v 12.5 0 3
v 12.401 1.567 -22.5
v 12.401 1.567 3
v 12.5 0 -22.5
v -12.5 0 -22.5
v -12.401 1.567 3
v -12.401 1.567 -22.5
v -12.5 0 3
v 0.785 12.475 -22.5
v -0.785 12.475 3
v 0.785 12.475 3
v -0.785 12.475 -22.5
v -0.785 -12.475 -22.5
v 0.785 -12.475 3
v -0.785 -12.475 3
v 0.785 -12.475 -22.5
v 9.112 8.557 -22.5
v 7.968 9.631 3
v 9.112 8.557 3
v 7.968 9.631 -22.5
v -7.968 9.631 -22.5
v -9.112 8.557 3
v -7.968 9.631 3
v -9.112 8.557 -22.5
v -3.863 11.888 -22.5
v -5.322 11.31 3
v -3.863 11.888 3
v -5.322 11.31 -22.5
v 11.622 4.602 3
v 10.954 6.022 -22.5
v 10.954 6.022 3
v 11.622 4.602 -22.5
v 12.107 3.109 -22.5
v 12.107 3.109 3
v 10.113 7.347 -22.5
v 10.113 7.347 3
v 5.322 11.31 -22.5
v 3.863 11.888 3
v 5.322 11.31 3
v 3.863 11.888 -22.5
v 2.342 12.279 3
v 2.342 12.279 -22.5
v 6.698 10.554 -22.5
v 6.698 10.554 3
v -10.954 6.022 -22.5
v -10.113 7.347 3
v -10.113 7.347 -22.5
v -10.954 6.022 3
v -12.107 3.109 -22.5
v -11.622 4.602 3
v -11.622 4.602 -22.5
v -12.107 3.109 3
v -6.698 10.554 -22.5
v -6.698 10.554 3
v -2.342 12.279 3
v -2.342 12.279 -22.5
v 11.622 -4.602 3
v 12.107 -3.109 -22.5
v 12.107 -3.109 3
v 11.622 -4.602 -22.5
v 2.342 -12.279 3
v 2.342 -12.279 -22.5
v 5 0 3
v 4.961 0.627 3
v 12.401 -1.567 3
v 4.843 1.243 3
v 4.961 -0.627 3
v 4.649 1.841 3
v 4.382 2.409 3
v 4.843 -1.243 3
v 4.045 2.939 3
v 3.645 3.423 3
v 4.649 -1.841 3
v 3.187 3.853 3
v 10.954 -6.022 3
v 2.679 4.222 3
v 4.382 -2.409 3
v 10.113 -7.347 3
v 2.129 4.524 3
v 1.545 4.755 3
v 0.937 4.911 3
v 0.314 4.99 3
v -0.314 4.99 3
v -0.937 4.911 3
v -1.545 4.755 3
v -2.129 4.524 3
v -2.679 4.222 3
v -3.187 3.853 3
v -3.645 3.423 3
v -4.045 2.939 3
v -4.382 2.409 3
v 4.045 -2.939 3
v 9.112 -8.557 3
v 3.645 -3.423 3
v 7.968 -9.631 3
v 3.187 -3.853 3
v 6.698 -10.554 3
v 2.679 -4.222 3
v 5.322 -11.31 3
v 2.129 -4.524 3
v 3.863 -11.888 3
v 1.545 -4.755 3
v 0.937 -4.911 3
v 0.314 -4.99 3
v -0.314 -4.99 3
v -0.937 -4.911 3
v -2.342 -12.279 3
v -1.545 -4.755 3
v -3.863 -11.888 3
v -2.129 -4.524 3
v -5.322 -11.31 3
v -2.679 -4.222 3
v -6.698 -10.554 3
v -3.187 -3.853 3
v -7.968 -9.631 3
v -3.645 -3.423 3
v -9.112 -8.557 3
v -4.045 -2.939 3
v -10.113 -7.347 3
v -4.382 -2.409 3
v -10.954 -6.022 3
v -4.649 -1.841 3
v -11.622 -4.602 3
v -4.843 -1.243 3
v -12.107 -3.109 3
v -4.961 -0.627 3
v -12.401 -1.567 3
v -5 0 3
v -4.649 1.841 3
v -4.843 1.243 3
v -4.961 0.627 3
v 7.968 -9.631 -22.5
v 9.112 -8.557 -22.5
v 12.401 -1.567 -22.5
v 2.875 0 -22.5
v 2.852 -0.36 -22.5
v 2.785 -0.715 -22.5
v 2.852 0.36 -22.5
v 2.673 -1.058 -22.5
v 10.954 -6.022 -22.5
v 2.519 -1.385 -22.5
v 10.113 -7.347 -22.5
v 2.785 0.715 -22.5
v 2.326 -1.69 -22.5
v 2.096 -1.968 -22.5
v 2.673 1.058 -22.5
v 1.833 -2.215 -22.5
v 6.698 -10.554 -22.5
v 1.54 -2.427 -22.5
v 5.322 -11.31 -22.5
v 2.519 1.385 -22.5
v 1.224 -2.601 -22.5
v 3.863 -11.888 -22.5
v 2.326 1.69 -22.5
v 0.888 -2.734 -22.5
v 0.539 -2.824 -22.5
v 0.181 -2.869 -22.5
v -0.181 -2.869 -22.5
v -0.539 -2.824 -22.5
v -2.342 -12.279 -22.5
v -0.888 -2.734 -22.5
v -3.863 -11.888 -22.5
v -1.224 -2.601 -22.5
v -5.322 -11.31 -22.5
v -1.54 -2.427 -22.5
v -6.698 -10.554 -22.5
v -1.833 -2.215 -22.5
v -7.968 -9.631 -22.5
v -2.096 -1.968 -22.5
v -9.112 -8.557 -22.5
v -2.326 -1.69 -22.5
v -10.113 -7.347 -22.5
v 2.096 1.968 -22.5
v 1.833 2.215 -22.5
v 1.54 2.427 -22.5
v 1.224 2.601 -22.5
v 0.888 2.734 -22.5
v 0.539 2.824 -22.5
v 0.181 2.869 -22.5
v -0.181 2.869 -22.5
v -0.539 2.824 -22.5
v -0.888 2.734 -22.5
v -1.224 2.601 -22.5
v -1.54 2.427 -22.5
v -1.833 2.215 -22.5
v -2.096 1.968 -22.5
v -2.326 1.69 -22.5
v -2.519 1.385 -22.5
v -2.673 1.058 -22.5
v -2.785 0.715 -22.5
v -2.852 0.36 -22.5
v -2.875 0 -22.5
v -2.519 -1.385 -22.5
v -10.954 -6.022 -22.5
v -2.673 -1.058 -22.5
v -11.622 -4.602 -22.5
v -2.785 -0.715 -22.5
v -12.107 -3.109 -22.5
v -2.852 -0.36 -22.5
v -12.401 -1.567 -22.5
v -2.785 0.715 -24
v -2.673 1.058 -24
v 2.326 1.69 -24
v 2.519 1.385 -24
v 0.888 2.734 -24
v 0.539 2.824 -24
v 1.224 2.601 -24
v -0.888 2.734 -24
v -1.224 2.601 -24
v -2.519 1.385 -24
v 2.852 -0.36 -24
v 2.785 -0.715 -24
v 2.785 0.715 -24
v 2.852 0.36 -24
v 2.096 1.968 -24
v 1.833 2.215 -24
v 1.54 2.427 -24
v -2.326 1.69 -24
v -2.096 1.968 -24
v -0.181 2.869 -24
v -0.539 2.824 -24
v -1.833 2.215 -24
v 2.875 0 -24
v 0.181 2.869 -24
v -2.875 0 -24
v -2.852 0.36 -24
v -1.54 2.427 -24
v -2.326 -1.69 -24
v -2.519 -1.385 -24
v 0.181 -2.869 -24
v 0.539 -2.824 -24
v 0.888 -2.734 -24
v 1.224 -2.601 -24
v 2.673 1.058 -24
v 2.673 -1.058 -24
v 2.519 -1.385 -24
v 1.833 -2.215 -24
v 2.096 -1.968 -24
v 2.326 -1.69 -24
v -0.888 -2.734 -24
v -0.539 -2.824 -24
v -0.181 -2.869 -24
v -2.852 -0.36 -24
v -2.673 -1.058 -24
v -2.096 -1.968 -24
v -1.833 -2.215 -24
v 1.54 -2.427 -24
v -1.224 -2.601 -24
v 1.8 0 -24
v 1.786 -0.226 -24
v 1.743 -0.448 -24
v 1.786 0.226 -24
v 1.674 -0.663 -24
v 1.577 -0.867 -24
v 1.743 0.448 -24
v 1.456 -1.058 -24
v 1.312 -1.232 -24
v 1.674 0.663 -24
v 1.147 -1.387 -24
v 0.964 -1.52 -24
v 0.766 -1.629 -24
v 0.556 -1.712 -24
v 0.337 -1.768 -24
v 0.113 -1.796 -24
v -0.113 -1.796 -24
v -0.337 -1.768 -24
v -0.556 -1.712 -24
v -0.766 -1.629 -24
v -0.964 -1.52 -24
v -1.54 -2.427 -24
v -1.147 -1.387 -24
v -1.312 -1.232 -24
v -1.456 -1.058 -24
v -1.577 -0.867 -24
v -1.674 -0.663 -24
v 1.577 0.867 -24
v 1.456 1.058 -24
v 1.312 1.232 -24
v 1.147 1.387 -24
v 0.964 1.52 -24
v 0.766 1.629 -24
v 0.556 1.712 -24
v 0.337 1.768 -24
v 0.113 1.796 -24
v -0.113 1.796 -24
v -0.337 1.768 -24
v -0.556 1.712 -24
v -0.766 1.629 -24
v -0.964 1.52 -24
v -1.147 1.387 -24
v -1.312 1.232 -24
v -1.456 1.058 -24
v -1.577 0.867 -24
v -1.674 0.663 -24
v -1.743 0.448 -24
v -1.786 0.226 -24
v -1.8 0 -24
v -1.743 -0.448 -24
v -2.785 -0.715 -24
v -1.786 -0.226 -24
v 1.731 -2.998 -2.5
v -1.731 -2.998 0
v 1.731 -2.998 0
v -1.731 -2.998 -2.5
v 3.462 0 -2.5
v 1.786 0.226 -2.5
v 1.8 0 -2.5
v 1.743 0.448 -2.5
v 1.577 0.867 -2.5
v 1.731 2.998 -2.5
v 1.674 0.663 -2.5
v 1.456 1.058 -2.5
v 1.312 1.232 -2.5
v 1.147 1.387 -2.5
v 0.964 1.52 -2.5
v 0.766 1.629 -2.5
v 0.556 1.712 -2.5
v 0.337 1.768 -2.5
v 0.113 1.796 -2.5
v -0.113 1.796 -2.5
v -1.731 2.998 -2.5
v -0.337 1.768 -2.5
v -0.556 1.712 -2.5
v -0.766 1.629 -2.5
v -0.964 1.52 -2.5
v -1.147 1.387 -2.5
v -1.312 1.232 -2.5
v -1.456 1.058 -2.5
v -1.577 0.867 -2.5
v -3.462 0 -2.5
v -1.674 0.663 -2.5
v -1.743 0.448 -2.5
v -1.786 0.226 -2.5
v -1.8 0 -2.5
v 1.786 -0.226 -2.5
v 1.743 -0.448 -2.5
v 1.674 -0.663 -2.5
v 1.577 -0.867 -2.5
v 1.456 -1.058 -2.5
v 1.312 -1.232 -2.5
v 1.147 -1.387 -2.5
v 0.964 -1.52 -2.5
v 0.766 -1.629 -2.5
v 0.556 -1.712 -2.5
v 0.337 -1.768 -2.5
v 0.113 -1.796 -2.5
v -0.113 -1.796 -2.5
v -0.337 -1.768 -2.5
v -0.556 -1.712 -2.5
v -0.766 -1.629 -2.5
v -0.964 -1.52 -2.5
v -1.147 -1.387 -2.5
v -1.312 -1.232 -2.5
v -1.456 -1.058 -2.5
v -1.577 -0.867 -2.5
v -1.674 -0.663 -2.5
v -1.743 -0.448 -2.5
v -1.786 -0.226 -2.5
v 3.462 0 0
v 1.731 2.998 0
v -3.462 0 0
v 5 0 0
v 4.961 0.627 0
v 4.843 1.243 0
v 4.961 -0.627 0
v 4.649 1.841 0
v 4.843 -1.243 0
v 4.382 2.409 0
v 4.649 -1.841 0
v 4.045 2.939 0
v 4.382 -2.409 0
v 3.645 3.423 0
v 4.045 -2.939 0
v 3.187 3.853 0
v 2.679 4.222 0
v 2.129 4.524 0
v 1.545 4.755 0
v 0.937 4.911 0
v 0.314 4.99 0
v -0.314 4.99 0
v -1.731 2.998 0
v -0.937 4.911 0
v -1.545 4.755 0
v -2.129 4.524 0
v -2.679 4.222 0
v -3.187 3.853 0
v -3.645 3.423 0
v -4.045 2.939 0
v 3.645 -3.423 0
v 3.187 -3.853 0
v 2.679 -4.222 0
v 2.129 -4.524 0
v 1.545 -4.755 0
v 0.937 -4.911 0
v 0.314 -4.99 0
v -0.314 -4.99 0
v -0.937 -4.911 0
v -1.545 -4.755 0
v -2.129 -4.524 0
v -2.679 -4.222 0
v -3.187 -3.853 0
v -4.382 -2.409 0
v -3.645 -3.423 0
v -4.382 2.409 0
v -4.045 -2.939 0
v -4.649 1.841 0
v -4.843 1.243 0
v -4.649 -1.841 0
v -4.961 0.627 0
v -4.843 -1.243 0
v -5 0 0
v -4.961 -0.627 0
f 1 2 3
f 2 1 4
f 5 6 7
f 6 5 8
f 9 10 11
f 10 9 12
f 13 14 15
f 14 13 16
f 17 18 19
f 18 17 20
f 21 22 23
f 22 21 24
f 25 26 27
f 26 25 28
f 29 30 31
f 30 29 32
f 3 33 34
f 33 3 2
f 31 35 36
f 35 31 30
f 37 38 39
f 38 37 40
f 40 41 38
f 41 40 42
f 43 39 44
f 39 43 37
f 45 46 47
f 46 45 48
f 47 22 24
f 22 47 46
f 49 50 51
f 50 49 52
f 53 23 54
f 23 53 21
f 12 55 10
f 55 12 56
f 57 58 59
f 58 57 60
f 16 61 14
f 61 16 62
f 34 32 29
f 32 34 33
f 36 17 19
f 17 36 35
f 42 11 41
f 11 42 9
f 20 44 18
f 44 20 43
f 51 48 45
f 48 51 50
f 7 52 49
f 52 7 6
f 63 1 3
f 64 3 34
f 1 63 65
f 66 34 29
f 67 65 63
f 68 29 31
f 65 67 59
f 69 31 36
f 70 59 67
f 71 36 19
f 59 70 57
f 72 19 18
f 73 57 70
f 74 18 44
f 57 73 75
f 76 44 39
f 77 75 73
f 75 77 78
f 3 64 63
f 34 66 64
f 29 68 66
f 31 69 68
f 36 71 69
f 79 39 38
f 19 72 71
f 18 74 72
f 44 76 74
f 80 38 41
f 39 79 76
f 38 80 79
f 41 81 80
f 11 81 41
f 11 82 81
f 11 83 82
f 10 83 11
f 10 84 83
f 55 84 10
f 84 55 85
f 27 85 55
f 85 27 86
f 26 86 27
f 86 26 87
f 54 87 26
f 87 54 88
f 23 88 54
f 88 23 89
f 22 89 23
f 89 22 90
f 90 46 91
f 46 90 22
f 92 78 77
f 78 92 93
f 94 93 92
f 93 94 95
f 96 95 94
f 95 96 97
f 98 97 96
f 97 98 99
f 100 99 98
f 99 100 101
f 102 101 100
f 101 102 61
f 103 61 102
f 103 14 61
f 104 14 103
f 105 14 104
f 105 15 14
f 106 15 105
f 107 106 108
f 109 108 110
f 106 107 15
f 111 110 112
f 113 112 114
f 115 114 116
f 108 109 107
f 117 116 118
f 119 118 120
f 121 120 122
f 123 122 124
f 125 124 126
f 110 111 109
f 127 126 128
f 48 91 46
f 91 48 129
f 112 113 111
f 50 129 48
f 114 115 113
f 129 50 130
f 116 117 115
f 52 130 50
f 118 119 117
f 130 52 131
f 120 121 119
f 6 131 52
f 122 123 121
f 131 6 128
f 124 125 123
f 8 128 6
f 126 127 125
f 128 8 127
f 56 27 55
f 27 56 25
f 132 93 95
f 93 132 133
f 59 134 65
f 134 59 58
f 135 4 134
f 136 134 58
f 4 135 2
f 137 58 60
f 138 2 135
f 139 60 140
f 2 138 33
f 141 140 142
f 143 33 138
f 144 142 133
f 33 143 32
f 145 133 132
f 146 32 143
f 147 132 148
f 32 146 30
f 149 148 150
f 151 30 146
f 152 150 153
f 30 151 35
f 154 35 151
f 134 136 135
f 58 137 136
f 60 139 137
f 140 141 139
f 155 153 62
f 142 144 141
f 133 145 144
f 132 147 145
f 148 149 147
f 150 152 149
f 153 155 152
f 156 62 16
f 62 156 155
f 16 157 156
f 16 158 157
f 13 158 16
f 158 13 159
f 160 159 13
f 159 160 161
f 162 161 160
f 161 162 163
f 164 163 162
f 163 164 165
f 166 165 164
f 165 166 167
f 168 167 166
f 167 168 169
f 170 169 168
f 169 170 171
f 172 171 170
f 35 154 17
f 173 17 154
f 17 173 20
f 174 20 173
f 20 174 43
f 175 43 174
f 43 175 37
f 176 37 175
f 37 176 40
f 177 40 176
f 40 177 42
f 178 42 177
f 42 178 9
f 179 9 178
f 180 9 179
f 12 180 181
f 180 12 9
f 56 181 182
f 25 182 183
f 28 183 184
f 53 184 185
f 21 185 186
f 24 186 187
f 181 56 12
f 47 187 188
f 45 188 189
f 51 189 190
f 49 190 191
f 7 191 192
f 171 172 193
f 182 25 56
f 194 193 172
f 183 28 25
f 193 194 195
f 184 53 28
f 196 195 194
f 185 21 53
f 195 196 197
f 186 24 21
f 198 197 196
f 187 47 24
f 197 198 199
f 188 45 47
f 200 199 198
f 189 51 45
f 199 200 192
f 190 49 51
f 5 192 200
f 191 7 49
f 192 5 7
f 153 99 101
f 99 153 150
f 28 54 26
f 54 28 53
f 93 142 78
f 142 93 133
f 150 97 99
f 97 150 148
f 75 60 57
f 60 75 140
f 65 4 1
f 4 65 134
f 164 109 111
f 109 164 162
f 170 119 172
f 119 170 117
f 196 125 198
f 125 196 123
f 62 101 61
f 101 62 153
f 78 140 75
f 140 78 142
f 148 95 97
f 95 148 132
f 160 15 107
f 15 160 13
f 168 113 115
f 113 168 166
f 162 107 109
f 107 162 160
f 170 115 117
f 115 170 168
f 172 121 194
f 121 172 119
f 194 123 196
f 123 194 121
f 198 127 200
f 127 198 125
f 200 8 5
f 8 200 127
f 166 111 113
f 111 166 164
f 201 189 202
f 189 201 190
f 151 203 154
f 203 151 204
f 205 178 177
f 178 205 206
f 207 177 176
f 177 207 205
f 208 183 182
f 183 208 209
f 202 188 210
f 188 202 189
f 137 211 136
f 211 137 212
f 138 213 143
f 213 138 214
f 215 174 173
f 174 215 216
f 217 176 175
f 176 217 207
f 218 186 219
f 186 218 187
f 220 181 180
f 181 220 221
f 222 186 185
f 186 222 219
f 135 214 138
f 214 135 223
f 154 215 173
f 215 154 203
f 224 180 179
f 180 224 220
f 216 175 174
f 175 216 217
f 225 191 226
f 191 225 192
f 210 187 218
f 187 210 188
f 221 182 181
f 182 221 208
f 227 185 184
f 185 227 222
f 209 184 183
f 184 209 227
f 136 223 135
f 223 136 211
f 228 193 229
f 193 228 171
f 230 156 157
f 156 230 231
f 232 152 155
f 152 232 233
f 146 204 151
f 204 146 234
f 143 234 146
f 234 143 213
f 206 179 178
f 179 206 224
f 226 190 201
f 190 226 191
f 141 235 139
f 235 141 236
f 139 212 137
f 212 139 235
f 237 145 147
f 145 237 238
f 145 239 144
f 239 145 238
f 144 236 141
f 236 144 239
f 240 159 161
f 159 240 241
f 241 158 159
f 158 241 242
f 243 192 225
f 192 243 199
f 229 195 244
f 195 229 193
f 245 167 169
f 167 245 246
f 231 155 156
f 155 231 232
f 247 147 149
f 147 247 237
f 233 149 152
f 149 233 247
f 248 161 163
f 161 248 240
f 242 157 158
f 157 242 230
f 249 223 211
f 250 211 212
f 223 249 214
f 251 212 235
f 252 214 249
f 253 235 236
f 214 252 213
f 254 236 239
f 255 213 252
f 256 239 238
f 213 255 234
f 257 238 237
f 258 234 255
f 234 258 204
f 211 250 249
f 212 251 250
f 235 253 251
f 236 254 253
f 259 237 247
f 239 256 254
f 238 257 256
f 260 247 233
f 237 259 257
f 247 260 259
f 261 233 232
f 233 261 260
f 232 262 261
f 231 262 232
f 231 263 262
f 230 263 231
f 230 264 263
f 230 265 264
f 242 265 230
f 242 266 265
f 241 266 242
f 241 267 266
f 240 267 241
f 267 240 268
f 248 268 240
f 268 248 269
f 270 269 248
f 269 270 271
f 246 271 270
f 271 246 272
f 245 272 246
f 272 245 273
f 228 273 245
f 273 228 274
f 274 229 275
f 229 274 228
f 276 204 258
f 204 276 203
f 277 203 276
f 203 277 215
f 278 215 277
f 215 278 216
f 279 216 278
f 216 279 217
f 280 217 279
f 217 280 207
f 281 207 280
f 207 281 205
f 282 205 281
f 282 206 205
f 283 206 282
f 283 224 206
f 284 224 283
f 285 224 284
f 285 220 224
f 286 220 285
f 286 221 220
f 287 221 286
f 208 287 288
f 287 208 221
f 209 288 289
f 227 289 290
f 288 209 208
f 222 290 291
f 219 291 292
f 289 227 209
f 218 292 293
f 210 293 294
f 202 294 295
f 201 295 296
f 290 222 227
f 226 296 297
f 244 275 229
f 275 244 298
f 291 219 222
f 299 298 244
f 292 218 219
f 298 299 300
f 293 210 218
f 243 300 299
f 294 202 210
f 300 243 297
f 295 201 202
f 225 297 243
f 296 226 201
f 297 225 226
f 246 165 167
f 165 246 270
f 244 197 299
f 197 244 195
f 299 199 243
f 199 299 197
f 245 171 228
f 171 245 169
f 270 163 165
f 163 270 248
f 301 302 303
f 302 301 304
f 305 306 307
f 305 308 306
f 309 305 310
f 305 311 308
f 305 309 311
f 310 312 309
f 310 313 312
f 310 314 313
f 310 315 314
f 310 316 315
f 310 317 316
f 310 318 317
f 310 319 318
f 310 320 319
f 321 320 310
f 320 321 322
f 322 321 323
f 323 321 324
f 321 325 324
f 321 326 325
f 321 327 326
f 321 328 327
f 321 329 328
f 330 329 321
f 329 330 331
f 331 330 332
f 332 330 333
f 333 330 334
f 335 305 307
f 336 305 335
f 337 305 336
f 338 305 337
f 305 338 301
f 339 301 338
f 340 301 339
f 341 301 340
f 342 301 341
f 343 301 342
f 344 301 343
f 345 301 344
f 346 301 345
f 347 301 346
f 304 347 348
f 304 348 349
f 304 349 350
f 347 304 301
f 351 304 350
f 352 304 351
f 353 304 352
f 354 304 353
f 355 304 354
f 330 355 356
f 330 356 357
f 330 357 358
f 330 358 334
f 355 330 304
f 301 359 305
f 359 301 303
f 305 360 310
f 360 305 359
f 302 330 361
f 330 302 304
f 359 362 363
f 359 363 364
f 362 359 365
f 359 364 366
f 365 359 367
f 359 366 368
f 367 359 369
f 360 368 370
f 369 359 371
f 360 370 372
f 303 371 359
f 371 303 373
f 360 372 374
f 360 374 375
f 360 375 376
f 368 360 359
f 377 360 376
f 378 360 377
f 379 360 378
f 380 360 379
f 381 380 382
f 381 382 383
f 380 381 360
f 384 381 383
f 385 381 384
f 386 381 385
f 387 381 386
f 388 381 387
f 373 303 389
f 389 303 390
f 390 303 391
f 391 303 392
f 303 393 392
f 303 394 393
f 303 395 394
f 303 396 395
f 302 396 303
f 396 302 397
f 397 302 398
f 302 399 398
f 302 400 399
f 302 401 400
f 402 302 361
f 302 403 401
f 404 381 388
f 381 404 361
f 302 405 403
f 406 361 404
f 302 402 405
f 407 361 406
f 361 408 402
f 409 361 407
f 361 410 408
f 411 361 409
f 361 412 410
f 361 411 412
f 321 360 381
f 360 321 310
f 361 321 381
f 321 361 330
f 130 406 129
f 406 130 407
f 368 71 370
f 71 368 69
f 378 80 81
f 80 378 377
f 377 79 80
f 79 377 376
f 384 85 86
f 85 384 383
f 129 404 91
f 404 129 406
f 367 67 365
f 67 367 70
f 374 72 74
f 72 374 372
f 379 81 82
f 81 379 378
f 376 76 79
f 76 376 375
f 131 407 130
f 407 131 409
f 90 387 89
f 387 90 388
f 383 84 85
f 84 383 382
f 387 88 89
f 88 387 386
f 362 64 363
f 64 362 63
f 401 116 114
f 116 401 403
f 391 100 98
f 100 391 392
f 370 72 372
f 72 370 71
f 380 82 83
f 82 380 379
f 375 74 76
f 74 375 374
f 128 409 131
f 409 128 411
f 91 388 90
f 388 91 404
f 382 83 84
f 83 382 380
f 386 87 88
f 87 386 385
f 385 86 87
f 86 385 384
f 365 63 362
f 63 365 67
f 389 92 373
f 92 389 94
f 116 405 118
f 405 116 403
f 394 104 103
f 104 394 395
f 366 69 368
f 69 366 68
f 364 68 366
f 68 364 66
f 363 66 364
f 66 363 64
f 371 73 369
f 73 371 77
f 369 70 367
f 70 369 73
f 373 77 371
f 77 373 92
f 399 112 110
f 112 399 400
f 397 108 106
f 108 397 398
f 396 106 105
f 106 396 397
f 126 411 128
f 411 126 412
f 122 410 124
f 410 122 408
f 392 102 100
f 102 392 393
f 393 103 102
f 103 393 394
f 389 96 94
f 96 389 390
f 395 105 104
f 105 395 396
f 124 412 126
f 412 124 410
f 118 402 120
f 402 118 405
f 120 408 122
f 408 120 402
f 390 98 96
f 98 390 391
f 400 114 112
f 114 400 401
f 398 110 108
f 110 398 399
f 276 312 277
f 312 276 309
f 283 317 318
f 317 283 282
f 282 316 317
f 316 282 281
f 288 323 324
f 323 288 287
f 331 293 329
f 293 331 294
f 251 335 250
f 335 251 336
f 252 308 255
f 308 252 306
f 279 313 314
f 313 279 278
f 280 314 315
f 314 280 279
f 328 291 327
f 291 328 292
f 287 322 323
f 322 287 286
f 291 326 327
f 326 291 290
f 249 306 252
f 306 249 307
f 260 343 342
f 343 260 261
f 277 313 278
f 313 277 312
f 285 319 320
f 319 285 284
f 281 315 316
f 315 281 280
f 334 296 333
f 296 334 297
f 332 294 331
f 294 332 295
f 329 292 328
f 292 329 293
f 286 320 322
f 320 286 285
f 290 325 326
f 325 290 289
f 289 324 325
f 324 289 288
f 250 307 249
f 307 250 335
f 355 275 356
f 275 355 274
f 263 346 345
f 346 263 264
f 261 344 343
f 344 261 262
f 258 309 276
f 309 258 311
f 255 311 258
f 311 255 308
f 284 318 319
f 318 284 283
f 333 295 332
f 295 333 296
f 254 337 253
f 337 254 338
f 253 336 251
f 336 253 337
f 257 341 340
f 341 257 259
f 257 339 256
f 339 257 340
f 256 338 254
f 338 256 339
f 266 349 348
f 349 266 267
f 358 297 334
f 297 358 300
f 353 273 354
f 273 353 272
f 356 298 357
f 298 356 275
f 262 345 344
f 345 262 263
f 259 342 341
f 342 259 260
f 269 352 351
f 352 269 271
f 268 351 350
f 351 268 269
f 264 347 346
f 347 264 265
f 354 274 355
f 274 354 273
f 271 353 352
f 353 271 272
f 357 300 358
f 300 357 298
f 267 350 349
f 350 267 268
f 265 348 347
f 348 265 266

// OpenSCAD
$fn = 50;


difference() {
	union() {
		translate(v = [0, 0, -22.5000000000]) {
			cylinder(h = 25.5000000000, r = 12.5000000000);
		}
		#translate(v = [0, 0, -24.0000000000]) {
			cylinder(h = 24, r = 2.8750000000);
		}
	}
	union() {
		translate(v = [0, 0, 0]) {
			rotate(a = [0, 0, 0]) {
				difference() {
					union() {
						translate(v = [0, 0, -2.5000000000]) {
							linear_extrude(height = 2.5000000000) {
								polygon(points = [[3.4620000000, 0.0000000000], [1.7310000000, 2.9981799479], [-1.7310000000, 2.9981799479], [-3.4620000000, 0.0000000000], [-1.7310000000, -2.9981799479], [1.7310000000, -2.9981799479]]);
							}
						}
					}
					union();
				}
			}
		}
		#cylinder(h = 3, r = 5.0000000000);
		#translate(v = [0, 0, -100.0000000000]) {
			cylinder(h = 200, r = 1.8000000000);
		}
	}
}
